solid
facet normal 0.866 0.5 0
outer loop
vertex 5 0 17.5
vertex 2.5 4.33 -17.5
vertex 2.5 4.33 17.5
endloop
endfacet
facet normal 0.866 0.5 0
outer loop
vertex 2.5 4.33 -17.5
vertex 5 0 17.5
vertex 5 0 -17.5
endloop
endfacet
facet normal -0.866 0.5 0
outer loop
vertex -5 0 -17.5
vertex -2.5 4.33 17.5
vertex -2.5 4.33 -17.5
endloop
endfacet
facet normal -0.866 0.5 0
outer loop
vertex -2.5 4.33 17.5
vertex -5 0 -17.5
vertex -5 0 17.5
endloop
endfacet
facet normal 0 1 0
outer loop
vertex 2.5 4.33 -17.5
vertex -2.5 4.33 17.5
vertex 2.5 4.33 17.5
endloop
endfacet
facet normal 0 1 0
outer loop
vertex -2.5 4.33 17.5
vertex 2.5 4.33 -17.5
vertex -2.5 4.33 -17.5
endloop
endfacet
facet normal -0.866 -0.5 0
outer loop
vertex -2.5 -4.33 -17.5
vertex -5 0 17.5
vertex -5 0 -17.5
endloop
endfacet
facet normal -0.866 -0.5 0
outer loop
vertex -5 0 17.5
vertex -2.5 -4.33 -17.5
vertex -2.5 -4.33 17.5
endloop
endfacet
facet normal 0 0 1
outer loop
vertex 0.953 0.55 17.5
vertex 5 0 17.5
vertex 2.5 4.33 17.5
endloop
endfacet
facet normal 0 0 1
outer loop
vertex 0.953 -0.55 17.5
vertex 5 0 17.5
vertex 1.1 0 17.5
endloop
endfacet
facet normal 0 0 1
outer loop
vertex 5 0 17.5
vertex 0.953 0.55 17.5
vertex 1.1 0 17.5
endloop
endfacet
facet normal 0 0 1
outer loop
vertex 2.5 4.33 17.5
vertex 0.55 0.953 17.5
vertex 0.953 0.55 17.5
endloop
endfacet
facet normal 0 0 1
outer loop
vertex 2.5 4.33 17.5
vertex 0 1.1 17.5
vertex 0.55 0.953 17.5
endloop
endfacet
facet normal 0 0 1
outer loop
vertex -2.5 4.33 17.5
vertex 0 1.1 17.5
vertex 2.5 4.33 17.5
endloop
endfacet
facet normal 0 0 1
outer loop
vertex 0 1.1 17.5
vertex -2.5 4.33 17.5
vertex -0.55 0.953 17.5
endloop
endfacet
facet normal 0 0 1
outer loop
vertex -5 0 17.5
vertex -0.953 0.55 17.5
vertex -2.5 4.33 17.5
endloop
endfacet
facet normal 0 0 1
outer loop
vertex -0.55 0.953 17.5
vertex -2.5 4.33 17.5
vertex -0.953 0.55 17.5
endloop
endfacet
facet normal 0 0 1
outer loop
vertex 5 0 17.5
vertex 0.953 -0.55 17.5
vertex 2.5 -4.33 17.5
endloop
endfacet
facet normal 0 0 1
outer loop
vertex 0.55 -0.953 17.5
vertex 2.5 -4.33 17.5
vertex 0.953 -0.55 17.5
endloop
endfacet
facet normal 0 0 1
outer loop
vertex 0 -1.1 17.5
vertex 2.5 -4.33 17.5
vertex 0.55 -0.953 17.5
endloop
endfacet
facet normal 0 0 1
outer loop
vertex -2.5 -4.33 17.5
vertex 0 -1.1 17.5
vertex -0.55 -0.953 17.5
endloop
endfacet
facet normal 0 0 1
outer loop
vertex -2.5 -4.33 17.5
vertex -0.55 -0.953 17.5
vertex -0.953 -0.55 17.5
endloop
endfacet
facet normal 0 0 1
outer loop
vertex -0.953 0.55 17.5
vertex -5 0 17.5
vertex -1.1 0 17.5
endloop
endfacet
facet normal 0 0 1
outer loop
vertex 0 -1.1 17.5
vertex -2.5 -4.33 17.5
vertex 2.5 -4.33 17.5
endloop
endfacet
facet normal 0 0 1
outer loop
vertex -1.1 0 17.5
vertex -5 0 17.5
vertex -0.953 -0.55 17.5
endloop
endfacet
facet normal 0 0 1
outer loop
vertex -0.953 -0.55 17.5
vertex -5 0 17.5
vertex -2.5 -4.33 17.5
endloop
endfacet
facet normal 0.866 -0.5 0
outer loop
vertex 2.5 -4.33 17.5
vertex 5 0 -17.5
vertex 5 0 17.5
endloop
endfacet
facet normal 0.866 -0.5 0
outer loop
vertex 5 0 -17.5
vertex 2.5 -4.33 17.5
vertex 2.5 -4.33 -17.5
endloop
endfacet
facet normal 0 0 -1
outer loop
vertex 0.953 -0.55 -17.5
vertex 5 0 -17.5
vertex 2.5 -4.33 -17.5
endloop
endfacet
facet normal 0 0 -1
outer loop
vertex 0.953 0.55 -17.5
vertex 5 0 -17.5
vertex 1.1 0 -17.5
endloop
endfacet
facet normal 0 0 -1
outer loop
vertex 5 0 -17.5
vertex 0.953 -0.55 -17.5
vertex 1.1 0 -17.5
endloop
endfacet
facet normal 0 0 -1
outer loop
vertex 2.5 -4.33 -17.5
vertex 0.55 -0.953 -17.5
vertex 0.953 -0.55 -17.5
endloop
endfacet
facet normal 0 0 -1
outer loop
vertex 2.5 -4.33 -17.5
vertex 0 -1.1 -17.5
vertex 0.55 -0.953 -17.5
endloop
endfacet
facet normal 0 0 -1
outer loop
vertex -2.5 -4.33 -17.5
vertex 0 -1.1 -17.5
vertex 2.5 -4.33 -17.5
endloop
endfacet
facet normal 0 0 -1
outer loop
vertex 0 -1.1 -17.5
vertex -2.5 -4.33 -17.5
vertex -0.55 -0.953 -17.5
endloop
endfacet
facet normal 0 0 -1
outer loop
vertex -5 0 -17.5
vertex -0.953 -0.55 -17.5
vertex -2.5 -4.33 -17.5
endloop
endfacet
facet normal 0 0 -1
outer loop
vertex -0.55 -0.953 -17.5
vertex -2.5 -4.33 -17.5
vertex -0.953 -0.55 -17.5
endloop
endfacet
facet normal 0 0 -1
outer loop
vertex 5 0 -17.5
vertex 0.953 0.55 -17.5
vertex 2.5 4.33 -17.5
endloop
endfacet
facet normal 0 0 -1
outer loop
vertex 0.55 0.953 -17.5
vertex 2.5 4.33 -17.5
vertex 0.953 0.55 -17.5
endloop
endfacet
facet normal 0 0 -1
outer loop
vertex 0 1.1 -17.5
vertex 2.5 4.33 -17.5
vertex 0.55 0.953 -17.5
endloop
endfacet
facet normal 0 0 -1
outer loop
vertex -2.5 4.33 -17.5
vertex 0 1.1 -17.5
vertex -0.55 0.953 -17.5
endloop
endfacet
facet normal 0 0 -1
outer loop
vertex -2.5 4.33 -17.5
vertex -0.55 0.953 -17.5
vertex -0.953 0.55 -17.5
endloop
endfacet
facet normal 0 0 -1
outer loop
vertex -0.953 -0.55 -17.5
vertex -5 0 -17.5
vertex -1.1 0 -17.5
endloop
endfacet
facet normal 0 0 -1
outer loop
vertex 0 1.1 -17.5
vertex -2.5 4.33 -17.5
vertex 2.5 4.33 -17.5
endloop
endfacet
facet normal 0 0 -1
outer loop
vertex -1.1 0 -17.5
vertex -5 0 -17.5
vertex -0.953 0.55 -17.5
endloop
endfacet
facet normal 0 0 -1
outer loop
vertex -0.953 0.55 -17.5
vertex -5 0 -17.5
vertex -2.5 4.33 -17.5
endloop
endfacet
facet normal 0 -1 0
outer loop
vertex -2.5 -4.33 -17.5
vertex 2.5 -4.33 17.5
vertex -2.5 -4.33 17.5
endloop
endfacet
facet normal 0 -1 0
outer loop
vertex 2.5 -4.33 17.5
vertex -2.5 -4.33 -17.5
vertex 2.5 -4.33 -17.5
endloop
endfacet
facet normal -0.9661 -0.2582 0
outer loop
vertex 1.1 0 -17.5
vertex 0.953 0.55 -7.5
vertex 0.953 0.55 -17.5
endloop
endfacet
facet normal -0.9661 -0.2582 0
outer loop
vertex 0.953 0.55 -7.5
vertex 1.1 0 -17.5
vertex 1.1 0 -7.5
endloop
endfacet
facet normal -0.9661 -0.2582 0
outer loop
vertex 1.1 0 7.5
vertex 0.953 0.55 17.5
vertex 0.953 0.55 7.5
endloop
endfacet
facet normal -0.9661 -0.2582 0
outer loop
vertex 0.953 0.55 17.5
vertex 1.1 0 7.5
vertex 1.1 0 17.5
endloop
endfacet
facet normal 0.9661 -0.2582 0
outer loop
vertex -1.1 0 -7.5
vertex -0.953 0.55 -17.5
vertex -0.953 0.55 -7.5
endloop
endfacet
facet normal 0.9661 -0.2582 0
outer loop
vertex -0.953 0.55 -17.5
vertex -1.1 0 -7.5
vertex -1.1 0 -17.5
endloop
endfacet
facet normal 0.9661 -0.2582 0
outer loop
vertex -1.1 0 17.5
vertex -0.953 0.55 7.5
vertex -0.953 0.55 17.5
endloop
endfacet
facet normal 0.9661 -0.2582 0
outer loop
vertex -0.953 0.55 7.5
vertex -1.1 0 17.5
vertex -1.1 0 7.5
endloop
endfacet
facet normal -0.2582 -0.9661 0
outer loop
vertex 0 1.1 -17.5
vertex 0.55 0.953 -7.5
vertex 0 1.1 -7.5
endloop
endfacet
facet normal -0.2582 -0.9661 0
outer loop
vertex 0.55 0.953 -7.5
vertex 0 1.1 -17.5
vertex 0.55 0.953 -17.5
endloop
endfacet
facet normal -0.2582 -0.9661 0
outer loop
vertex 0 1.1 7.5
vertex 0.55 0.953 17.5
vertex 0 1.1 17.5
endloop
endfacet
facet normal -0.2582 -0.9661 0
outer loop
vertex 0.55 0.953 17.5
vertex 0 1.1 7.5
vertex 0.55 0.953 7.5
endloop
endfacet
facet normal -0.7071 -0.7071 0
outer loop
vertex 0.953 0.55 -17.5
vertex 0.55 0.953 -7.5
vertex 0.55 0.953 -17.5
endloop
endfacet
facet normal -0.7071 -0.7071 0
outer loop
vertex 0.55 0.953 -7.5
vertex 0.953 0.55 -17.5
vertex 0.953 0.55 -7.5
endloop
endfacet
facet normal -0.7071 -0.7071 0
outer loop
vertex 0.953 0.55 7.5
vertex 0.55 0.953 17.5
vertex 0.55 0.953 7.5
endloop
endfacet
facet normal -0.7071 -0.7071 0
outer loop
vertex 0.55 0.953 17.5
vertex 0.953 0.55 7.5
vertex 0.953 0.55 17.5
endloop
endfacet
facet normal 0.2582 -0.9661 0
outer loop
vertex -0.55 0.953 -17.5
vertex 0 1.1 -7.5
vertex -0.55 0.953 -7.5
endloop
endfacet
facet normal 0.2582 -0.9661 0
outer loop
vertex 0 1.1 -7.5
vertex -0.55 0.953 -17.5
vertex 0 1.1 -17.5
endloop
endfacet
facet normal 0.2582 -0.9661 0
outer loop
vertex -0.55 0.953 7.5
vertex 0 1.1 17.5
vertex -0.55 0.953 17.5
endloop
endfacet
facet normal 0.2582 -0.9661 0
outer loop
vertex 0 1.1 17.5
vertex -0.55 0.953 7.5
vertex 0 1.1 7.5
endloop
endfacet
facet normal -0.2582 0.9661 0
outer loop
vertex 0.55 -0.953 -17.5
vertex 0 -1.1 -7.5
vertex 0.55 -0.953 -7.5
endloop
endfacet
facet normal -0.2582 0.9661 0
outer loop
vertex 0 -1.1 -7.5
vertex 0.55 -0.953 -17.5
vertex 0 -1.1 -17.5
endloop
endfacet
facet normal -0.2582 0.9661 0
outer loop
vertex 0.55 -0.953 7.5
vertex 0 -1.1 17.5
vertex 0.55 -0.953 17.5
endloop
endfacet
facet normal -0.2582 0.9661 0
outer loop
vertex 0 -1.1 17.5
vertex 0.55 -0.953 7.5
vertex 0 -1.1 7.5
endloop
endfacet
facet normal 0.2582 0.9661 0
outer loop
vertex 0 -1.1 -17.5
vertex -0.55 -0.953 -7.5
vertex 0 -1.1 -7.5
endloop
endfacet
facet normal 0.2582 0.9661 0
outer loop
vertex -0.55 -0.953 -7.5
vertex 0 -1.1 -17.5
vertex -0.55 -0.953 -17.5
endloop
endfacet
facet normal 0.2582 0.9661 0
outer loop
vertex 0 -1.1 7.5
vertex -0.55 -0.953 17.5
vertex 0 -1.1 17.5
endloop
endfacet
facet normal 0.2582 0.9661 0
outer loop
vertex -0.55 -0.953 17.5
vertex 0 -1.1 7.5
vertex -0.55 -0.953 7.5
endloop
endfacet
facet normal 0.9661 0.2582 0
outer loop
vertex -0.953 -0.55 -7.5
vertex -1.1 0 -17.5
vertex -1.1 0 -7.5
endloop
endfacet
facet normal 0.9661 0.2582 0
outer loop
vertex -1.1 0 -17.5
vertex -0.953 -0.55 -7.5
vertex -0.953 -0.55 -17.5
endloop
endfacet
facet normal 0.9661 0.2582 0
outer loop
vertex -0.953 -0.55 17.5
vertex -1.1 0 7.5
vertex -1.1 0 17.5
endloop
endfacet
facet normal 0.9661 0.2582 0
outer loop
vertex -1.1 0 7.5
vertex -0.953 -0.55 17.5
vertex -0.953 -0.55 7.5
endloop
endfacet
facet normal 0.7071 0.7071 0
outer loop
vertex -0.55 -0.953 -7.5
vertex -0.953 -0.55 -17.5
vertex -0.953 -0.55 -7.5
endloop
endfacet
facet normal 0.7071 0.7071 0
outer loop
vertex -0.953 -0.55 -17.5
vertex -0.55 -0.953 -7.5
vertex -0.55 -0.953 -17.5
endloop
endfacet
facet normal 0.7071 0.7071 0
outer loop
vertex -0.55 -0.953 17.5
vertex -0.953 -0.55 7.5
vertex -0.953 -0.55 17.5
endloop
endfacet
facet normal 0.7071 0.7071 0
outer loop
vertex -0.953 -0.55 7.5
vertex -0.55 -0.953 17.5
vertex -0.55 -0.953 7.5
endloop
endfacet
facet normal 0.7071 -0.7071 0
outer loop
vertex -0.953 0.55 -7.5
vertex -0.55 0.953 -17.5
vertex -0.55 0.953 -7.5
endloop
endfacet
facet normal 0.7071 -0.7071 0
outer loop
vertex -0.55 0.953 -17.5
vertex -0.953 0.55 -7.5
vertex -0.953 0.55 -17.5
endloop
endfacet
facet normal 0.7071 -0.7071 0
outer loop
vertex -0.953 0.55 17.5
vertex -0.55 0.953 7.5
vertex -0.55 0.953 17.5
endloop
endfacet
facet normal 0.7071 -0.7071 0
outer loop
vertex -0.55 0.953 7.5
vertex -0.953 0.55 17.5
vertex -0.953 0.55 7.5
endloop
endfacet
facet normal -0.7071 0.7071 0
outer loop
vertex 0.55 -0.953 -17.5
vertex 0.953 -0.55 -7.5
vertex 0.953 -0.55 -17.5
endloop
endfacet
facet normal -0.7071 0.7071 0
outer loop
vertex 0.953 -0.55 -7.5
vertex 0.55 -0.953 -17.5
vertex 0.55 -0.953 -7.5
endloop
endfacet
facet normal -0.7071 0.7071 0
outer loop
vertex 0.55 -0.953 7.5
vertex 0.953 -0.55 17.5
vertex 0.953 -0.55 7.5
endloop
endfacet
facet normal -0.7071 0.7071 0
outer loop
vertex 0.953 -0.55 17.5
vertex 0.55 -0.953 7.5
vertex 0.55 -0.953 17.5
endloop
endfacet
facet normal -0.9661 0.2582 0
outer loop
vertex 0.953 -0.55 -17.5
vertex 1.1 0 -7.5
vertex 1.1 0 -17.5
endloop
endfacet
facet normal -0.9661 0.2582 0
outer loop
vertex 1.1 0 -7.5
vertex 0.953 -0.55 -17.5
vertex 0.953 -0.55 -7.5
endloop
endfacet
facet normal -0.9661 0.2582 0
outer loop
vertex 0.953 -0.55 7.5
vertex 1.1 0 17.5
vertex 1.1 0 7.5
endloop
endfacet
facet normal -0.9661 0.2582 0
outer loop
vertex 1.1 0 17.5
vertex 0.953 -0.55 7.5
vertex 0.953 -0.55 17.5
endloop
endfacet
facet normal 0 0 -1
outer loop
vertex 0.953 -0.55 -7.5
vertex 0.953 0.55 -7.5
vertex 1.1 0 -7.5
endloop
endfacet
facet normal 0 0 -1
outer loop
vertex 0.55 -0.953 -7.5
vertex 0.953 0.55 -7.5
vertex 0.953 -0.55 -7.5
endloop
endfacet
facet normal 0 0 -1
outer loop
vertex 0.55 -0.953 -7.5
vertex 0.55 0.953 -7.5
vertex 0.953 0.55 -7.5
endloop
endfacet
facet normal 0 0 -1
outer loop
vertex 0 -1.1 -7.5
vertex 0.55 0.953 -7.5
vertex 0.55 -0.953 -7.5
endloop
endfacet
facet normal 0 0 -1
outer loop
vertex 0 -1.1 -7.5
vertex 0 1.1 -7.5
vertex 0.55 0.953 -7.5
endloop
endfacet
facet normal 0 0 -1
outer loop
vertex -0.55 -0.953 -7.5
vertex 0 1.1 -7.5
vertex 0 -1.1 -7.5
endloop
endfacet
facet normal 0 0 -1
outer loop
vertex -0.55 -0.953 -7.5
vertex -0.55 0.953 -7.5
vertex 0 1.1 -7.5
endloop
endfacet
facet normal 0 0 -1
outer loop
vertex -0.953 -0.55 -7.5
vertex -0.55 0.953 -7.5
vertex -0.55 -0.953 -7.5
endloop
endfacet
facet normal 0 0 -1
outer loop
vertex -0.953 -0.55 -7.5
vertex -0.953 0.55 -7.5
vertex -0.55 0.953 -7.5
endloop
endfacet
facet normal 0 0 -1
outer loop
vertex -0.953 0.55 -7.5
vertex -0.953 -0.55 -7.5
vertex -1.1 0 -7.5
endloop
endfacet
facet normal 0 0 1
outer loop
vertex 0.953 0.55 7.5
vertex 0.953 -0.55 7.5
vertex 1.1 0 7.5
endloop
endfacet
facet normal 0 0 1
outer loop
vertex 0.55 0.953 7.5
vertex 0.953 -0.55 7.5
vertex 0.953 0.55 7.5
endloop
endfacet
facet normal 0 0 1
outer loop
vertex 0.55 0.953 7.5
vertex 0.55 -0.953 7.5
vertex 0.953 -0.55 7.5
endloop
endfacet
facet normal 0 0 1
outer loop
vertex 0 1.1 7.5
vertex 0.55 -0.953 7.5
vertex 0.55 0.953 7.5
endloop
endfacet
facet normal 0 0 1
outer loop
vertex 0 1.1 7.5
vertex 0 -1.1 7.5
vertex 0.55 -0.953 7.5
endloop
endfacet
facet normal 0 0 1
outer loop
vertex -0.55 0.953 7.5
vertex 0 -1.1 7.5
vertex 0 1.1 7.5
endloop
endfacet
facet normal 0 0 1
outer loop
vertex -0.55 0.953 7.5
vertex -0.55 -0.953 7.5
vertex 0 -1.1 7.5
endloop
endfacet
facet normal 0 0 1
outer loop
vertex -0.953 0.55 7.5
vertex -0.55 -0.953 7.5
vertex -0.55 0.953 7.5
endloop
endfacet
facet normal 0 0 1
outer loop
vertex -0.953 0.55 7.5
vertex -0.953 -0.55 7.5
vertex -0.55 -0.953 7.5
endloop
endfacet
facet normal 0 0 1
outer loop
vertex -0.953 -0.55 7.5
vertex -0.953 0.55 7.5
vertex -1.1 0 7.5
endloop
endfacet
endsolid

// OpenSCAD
difference(){
cylinder(d=10,h=35,center=true,$fn=6);
cylinder(d=2.2,h=40,center=true,$fn=12);
}
cylinder(d=2.2,h=15,center=true,$fn=12);
